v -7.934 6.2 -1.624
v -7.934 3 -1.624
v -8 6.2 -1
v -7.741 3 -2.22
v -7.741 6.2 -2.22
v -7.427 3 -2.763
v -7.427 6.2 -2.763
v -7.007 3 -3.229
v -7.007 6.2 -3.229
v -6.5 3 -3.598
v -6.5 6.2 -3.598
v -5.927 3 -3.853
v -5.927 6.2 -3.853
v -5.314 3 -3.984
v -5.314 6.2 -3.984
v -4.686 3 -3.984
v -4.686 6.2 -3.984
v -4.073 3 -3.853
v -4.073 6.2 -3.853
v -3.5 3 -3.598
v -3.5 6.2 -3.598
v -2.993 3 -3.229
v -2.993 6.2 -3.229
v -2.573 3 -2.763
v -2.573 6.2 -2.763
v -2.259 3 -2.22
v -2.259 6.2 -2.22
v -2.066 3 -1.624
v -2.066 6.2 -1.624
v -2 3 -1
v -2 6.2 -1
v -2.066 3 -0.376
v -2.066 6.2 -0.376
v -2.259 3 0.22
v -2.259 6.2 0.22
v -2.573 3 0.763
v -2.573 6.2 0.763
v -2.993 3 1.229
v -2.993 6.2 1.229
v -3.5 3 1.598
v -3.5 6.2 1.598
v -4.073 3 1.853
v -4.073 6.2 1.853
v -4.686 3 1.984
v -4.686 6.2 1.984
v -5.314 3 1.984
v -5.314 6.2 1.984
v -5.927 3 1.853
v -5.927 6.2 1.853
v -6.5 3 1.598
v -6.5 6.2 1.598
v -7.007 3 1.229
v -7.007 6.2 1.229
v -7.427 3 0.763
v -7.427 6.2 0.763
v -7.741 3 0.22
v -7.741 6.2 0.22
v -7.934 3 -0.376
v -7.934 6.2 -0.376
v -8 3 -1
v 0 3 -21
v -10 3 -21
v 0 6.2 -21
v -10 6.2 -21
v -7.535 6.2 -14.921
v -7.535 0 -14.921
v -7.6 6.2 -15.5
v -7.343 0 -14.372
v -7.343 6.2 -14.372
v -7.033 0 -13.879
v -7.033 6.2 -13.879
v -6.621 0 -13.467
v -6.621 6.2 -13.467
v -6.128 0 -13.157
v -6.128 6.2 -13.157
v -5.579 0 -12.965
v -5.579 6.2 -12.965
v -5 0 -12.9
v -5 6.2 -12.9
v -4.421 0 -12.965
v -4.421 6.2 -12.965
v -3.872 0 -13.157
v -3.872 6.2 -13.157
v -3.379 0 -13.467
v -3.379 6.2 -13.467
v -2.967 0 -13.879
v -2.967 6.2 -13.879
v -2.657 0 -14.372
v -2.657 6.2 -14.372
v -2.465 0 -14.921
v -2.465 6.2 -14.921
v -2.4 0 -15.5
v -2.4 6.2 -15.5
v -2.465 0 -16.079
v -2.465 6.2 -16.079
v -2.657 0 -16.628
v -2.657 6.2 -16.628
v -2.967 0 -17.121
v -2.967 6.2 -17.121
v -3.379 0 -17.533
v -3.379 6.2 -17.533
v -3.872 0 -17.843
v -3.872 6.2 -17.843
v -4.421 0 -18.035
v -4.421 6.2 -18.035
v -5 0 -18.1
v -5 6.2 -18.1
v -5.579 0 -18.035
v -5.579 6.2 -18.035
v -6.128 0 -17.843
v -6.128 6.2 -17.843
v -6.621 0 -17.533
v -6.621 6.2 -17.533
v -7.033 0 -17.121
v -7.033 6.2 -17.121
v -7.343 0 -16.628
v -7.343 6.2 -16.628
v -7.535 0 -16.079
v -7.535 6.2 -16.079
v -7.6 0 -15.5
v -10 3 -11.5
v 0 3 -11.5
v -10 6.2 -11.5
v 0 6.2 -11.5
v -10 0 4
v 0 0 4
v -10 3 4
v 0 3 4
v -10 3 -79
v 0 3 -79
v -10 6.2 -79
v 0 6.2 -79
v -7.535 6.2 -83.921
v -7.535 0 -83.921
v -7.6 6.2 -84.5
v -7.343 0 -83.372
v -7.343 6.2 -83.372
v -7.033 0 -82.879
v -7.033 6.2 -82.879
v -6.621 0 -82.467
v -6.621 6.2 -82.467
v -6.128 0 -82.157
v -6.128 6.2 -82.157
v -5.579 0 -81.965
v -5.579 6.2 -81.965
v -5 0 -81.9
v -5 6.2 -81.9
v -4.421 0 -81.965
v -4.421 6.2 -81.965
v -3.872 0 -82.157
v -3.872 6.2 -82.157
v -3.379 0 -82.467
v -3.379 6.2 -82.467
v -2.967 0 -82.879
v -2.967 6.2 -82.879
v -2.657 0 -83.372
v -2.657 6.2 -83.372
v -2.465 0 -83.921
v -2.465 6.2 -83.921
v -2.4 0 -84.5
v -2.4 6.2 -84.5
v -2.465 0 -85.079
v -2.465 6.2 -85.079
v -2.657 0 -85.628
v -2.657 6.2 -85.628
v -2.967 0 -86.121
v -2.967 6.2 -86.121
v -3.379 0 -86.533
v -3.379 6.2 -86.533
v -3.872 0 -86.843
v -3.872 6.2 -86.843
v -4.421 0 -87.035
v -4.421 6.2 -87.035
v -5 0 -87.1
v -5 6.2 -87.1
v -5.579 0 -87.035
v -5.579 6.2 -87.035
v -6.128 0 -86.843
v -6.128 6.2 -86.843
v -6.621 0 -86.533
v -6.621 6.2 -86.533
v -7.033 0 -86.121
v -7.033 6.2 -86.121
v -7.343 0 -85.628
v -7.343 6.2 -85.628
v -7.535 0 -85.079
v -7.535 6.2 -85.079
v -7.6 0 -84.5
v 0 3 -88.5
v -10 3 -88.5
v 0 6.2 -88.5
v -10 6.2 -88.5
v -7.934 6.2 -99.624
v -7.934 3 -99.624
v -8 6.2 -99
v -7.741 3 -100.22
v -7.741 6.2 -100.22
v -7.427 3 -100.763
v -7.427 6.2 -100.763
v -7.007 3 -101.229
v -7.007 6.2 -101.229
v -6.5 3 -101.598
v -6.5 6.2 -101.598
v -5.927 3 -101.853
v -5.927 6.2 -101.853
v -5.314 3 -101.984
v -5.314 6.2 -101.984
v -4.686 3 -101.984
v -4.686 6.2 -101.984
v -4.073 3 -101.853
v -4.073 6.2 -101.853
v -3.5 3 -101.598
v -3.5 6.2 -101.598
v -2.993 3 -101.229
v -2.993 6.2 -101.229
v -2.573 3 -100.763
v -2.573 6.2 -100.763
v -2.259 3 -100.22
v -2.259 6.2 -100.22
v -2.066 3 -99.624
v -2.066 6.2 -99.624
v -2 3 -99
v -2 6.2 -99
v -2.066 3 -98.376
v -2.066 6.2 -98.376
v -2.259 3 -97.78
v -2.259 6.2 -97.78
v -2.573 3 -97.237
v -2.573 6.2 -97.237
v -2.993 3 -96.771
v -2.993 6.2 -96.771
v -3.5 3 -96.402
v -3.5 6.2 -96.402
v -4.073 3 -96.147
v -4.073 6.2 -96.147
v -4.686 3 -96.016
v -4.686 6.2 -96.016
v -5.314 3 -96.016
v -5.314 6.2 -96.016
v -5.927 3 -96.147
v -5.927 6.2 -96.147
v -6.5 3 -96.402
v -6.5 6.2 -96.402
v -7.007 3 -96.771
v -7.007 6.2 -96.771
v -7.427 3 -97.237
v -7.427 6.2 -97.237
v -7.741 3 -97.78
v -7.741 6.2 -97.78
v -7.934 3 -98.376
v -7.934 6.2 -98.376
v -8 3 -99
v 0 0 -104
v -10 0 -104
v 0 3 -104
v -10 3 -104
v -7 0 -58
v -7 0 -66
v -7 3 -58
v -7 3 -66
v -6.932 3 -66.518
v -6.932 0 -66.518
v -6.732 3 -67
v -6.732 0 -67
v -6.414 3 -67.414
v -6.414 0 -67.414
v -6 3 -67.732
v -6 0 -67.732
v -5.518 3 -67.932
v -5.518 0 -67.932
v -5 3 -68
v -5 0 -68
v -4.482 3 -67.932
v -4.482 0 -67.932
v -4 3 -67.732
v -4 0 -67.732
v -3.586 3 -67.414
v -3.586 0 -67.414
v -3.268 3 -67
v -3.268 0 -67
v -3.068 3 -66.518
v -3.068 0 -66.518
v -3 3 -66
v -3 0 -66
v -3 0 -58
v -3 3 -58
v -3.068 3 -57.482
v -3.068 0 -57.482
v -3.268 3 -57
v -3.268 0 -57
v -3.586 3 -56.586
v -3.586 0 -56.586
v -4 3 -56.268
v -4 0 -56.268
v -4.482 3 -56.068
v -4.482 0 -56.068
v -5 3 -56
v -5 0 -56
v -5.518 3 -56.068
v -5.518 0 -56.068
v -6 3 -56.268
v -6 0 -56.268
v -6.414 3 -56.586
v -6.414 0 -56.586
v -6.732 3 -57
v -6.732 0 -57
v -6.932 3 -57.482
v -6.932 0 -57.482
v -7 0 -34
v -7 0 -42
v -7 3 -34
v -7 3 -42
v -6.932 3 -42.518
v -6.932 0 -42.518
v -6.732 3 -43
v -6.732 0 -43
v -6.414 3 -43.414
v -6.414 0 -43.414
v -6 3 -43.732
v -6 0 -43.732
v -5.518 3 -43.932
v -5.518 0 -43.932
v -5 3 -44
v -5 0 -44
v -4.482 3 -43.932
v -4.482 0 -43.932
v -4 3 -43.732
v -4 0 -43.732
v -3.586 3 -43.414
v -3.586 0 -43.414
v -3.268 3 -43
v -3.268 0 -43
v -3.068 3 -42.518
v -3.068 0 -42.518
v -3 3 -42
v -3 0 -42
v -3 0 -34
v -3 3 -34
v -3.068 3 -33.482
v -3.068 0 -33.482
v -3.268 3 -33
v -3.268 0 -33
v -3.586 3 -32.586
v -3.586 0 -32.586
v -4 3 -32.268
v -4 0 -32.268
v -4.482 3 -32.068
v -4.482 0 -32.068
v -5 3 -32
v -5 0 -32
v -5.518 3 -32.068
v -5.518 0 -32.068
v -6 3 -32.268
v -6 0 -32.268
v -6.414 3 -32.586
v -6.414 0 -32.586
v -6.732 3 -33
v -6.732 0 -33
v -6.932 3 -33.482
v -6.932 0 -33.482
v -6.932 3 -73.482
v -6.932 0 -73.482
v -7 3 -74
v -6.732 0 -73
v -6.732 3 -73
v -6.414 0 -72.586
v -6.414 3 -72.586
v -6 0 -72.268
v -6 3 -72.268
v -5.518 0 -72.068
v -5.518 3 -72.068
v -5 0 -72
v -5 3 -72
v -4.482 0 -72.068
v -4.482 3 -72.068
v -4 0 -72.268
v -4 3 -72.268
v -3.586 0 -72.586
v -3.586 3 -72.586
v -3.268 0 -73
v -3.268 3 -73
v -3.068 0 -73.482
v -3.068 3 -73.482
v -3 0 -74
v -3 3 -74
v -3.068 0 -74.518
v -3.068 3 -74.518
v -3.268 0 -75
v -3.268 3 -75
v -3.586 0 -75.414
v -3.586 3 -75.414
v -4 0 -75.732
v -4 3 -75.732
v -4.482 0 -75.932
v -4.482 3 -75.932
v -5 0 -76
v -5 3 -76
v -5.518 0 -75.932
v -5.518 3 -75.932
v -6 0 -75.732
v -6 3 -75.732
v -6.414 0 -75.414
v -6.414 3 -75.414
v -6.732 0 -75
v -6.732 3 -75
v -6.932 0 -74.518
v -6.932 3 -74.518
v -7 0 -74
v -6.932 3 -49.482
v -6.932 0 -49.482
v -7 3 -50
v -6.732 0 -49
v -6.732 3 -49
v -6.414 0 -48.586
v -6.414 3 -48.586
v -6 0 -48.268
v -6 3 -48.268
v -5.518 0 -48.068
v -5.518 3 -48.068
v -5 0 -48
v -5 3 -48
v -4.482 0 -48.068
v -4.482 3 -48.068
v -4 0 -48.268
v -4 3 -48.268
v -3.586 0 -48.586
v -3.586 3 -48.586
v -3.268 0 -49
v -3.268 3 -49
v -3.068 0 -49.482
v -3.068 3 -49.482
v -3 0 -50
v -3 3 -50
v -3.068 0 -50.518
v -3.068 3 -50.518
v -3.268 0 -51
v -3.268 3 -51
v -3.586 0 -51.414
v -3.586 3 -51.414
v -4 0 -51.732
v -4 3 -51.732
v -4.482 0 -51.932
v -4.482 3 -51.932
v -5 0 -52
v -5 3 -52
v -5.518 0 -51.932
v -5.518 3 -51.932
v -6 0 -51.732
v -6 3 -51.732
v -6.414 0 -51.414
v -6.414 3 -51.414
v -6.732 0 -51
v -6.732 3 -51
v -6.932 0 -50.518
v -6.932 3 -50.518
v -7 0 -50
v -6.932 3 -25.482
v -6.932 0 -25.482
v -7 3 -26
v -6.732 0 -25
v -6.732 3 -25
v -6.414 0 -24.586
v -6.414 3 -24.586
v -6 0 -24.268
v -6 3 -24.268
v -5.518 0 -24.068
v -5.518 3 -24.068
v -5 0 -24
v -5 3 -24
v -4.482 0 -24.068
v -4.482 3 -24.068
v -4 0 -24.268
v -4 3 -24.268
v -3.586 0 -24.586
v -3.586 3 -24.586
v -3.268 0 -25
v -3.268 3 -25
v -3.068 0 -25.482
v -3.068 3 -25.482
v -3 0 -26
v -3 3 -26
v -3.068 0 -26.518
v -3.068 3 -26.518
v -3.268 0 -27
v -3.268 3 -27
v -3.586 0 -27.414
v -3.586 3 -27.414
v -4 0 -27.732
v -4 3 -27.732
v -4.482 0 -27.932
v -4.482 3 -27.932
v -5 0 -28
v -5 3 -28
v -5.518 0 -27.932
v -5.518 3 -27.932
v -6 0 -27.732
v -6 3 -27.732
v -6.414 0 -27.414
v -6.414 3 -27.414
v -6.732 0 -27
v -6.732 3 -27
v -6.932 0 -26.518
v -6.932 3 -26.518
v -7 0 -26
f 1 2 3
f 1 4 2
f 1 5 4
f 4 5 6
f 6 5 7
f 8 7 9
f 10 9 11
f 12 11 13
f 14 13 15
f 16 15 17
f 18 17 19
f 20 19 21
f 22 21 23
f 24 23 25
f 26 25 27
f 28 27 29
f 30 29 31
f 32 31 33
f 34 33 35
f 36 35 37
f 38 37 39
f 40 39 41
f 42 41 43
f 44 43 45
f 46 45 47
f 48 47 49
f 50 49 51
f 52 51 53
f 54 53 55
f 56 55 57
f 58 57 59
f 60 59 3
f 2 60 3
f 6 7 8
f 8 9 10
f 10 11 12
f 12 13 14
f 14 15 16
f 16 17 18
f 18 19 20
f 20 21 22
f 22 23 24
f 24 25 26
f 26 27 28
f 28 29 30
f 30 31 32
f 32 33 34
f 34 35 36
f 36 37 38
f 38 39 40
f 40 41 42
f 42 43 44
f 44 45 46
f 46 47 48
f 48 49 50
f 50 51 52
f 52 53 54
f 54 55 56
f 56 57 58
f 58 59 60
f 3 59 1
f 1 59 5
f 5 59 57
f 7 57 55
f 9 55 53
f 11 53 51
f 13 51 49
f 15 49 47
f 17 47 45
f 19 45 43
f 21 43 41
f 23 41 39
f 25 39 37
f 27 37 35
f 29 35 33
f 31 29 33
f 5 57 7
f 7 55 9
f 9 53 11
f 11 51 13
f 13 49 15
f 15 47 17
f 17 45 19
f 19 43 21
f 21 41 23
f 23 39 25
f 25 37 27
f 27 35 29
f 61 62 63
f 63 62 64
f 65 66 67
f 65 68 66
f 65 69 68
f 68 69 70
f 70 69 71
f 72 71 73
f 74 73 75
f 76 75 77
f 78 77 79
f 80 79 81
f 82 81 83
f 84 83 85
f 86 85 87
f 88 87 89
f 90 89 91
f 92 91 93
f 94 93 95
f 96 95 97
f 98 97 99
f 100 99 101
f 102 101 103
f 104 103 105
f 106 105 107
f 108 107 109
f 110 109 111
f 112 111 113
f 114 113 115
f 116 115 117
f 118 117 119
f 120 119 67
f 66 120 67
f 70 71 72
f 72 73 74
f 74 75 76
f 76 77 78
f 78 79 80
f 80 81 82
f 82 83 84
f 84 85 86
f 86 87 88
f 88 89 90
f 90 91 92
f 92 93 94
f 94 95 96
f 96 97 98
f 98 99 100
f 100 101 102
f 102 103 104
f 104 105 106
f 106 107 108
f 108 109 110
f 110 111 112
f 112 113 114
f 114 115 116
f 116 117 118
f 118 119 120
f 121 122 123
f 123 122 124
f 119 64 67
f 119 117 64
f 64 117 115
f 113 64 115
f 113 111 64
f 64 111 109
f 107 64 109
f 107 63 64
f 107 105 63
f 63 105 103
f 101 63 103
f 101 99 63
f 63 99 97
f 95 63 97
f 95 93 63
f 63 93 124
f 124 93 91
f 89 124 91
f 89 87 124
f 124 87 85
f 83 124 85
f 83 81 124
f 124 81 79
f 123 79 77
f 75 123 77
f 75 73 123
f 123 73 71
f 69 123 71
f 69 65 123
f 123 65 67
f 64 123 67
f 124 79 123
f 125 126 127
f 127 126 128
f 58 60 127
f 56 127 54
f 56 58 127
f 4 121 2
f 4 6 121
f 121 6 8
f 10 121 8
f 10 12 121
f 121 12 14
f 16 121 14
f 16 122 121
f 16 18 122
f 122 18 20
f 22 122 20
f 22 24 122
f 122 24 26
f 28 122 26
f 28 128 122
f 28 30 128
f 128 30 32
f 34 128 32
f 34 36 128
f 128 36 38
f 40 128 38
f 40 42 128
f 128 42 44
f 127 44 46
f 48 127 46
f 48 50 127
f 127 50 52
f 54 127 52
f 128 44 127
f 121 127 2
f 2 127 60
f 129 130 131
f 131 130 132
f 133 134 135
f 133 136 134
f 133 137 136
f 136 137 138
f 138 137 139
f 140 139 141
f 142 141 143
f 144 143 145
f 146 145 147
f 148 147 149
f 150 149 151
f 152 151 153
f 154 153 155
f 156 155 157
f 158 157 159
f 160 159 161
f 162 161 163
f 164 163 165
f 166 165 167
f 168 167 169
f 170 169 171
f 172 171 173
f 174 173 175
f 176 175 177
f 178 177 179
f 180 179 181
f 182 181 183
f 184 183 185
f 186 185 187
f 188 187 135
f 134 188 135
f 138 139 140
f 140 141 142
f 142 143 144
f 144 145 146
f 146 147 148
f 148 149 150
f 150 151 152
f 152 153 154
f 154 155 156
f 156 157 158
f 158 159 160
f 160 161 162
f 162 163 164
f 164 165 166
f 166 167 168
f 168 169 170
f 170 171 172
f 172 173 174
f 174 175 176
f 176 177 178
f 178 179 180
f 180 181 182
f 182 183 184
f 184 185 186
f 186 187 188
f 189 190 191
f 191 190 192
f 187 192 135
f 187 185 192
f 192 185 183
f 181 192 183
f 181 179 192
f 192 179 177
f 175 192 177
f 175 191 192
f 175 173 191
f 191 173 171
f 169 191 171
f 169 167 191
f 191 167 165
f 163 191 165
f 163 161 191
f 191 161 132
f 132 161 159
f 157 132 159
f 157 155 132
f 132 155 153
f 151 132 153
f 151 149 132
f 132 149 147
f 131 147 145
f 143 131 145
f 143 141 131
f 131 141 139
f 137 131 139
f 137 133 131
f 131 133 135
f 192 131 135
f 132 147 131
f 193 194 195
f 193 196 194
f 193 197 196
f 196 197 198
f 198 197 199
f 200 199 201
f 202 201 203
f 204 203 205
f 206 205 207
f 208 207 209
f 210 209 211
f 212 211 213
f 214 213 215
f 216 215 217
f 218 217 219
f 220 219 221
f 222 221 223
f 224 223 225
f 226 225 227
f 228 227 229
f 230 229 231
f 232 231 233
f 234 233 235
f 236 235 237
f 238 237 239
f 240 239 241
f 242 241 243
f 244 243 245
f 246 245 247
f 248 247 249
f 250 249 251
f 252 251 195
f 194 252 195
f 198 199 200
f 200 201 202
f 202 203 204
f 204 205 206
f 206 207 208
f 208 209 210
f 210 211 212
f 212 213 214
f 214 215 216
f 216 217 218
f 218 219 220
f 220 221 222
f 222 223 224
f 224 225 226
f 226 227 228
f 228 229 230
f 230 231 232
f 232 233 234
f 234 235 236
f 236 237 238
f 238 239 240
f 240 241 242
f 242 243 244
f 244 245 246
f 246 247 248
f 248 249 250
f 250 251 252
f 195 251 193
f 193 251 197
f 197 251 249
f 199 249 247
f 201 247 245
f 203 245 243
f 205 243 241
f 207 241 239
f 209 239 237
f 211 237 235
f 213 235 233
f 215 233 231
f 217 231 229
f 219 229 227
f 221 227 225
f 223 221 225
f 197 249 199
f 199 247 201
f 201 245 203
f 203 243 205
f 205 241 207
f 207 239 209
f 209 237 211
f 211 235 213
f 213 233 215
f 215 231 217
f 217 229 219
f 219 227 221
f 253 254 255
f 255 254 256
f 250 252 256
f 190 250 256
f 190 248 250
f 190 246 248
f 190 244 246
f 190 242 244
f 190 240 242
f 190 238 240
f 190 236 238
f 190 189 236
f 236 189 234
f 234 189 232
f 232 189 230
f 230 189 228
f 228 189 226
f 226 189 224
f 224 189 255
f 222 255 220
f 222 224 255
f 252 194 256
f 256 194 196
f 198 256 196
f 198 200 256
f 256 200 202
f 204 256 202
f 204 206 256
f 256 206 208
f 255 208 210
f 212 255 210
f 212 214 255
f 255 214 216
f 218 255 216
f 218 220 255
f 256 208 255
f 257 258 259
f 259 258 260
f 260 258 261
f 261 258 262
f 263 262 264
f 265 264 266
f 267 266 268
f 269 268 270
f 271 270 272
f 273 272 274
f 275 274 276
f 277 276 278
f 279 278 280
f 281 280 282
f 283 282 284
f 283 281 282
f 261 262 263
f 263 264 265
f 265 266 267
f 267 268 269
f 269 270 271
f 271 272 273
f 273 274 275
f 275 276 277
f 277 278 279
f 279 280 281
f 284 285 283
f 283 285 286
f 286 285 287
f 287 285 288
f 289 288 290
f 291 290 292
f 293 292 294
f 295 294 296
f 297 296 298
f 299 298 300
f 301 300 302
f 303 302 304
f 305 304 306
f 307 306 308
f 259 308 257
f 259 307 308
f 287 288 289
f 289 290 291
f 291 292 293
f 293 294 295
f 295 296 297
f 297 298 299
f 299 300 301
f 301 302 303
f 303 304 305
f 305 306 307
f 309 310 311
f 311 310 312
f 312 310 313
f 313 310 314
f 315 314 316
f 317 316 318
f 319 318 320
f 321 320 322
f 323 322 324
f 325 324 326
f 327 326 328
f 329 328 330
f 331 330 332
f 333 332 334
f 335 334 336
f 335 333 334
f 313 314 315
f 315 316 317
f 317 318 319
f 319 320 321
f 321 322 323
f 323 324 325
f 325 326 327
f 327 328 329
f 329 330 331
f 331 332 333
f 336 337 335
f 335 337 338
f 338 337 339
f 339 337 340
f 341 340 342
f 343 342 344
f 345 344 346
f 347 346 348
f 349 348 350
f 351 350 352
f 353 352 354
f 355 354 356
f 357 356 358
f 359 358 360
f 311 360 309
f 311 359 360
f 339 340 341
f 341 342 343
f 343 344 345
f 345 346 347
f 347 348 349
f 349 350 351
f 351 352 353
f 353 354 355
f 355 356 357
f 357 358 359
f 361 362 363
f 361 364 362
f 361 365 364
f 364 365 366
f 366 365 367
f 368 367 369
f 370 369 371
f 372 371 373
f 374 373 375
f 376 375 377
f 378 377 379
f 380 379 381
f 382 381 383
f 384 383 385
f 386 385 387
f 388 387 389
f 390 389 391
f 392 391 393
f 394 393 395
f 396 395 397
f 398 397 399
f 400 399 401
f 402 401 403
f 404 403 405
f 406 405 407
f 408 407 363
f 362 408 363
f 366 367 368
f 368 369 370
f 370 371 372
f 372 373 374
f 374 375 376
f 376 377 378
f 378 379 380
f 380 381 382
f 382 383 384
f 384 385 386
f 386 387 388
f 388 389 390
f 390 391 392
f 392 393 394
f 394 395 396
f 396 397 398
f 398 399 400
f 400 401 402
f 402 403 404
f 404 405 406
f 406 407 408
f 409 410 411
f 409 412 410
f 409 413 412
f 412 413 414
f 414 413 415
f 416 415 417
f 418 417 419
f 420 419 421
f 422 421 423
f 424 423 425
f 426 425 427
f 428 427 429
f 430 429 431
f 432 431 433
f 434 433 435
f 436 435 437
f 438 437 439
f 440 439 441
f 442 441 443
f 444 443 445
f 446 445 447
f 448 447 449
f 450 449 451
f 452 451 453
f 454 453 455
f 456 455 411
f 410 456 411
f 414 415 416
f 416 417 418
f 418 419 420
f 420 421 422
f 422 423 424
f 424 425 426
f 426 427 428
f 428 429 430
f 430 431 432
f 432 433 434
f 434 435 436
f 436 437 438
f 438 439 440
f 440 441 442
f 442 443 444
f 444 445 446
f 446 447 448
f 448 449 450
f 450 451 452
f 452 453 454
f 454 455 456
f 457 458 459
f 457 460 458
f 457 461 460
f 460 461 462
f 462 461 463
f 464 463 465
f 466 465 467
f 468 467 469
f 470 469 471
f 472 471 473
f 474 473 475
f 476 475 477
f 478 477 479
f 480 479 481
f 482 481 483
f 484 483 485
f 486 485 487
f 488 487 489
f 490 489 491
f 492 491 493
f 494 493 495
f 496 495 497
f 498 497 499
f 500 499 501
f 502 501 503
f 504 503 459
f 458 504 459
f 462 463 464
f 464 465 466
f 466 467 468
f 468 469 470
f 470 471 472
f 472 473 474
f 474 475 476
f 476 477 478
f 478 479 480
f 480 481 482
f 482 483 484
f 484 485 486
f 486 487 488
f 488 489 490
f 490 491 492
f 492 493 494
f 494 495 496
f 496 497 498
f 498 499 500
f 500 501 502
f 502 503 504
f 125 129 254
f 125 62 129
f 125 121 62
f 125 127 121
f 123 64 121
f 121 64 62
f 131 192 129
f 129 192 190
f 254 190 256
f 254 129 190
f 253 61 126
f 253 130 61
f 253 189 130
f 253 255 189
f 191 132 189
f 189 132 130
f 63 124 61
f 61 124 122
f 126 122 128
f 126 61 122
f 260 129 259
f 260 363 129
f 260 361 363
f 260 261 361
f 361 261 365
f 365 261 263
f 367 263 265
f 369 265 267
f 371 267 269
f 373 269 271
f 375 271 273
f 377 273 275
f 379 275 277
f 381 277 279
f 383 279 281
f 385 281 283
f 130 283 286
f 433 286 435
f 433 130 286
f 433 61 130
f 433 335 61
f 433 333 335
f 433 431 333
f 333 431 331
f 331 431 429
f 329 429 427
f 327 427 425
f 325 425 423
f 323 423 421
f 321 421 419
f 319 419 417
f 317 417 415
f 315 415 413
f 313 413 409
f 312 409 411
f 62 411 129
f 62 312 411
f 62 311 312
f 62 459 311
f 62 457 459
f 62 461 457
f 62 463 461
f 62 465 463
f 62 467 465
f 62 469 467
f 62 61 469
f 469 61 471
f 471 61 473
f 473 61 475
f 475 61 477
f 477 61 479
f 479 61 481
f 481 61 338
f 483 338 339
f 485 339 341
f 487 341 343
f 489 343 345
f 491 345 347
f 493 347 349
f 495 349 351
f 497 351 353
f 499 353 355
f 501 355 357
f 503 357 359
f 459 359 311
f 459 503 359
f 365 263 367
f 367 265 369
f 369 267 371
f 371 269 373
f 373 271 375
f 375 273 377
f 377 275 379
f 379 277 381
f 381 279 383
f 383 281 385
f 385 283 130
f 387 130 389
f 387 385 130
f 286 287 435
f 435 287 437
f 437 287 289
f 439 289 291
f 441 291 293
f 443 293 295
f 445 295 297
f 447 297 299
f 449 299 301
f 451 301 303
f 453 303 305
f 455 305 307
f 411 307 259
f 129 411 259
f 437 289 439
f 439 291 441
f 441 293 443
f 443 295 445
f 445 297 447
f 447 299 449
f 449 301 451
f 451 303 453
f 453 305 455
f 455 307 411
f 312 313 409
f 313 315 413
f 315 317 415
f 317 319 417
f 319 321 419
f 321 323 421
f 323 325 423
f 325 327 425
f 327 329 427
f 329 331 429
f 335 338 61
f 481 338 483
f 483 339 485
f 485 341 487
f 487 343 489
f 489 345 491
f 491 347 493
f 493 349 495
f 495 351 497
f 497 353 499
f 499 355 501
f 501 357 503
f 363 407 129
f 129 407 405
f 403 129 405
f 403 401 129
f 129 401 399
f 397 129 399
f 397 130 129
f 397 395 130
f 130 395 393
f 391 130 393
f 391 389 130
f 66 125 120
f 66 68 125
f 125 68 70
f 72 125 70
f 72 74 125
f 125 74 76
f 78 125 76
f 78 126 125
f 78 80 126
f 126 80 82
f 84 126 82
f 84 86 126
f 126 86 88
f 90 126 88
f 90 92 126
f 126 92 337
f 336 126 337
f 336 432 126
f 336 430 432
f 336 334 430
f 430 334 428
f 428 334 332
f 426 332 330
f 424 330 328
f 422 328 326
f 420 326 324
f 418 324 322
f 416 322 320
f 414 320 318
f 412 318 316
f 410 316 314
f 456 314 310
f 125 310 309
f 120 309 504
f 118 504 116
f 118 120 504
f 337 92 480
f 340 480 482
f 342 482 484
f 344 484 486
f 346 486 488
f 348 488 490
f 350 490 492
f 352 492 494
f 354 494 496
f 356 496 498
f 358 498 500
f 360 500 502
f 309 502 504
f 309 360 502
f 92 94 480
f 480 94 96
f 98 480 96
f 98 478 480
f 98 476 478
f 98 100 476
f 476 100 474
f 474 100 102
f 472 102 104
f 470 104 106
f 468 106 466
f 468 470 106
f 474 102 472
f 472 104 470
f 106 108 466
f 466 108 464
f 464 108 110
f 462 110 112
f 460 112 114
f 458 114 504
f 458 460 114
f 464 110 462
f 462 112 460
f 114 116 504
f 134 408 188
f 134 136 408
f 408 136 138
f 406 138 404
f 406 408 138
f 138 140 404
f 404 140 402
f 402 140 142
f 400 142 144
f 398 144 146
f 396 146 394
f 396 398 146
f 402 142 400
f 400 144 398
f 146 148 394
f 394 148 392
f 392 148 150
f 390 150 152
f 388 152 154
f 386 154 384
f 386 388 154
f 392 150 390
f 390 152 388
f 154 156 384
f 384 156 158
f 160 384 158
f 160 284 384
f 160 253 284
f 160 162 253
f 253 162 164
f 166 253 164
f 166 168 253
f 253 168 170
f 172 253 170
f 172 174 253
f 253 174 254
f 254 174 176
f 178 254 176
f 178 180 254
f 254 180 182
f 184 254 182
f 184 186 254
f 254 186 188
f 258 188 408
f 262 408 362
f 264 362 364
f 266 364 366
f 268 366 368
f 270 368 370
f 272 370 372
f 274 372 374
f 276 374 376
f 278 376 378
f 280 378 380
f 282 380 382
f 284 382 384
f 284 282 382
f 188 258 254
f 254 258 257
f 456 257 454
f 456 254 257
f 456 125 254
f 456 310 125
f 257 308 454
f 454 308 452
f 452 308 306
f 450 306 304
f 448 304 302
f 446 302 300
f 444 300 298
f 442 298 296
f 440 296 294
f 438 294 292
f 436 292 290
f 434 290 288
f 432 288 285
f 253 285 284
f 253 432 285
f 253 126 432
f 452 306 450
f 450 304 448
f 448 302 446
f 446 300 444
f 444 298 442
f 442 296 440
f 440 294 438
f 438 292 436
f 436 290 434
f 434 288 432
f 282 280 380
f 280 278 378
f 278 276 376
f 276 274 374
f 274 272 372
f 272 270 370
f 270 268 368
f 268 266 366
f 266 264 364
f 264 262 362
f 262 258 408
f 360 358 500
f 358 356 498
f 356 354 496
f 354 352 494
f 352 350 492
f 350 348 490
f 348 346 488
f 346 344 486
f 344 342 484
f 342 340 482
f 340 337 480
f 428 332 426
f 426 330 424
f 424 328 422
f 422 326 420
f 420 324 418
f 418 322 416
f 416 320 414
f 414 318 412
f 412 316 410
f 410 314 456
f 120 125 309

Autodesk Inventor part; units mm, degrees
ref_plane "YZ Plane" through (0, 0, 0) normal (1, 0, 0) x (0, 1, 0)
ref_plane "XZ Plane" through (0, 0, 0) normal (0, 1, 0) x (-1, 0, 0)
ref_plane "XY Plane" through (0, 0, 0) normal (0, 0, 1) x (1, 0, 0)
sketch "Sketch1" plane through (0, 0, 0) normal (0, 1, 0) x (-1, 0, 0)
  line L0 (0, 0) -> (0, -100)
  line L1 (10, -100) -> (10, 0)
  circle A0 centre (5, -84.5) radius 2.6
  circle A1 centre (5, -15.5) radius 2.6
  circle A2 centre (5, -1) radius 3
  line L2 (10, 0) -> (10, 4)
  line L3 (10, 4) -> (0, 4)
  line L4 (0, 4) -> (0, 0)
  line L5 (10, -100) -> (10, -104)
  line L6 (10, -104) -> (0, -104)
  line L7 (0, -104) -> (0, -100)
  circle A3 centre (5, -99) radius 3
  circle A4 centre (5, -26) radius 2
  arc A5 (7, -34) -> (3, -34) centre (5, -34) ccw
  arc A6 (3, -42) -> (7, -42) centre (5, -42) ccw
  circle A7 centre (5, -50) radius 2
  arc A8 (7, -58) -> (3, -58) centre (5, -58) ccw
  arc A9 (3, -66) -> (7, -66) centre (5, -66) ccw
  circle A10 centre (5, -74) radius 2
  line L8 (7, -34) -> (7, -42)
  line L9 (3, -34) -> (3, -42)
  line L10 (7, -58) -> (7, -66)
  line L11 (3, -58) -> (3, -66)
  line L12 (5, -21) -> (10, -21)
  line L13 (5, -21) -> (0, -21)
  line L14 (5, -11.5) -> (10, -11.5)
  line L15 (5, -11.5) -> (0, -11.5)
  line L16 (5, -79) -> (10, -79)
  line L17 (5, -79) -> (0, -79)
  line L18 (5, -88.5) -> (10, -88.5)
  line L19 (5, -88.5) -> (0, -88.5)
  dimension "d0" = 100
  dimension "d1" = 10
  dimension "d4" = 5.2
  dimension "d7" = 5.2
  dimension "d9" = 6
  dimension "d10" = 4
  dimension "d11" = 4
  dimension "d13" = 6
  dimension "d20" = 4
  dimension "d21" = 4
  dimension "d22" = 4
  dimension "d23" = 4
  dimension "d24" = 4
  dimension "d25" = 4
  dimension "d26" = 4
  dimension "d27" = 5.5
  dimension "d28" = 4
  dimension "d29" = 5.5
  dimension "d30" = 4
extrude "Extrusion1" add sketch "Sketch1" along normal blind 3 contours L4 L3 L2 L1 L14 L15 L0 | L13 L12 L1 L16 L17 L0 | L19 L18 L1 L5 L6 L7 L0
extrude "Extrusion2" add sketch "Sketch1" along normal blind 6.2 contours L15 L14 L1 L12 L13 L0 | L17 L16 L1 L18 L19 L0 | A2 | A3
properties part number "roller_holder_2"
